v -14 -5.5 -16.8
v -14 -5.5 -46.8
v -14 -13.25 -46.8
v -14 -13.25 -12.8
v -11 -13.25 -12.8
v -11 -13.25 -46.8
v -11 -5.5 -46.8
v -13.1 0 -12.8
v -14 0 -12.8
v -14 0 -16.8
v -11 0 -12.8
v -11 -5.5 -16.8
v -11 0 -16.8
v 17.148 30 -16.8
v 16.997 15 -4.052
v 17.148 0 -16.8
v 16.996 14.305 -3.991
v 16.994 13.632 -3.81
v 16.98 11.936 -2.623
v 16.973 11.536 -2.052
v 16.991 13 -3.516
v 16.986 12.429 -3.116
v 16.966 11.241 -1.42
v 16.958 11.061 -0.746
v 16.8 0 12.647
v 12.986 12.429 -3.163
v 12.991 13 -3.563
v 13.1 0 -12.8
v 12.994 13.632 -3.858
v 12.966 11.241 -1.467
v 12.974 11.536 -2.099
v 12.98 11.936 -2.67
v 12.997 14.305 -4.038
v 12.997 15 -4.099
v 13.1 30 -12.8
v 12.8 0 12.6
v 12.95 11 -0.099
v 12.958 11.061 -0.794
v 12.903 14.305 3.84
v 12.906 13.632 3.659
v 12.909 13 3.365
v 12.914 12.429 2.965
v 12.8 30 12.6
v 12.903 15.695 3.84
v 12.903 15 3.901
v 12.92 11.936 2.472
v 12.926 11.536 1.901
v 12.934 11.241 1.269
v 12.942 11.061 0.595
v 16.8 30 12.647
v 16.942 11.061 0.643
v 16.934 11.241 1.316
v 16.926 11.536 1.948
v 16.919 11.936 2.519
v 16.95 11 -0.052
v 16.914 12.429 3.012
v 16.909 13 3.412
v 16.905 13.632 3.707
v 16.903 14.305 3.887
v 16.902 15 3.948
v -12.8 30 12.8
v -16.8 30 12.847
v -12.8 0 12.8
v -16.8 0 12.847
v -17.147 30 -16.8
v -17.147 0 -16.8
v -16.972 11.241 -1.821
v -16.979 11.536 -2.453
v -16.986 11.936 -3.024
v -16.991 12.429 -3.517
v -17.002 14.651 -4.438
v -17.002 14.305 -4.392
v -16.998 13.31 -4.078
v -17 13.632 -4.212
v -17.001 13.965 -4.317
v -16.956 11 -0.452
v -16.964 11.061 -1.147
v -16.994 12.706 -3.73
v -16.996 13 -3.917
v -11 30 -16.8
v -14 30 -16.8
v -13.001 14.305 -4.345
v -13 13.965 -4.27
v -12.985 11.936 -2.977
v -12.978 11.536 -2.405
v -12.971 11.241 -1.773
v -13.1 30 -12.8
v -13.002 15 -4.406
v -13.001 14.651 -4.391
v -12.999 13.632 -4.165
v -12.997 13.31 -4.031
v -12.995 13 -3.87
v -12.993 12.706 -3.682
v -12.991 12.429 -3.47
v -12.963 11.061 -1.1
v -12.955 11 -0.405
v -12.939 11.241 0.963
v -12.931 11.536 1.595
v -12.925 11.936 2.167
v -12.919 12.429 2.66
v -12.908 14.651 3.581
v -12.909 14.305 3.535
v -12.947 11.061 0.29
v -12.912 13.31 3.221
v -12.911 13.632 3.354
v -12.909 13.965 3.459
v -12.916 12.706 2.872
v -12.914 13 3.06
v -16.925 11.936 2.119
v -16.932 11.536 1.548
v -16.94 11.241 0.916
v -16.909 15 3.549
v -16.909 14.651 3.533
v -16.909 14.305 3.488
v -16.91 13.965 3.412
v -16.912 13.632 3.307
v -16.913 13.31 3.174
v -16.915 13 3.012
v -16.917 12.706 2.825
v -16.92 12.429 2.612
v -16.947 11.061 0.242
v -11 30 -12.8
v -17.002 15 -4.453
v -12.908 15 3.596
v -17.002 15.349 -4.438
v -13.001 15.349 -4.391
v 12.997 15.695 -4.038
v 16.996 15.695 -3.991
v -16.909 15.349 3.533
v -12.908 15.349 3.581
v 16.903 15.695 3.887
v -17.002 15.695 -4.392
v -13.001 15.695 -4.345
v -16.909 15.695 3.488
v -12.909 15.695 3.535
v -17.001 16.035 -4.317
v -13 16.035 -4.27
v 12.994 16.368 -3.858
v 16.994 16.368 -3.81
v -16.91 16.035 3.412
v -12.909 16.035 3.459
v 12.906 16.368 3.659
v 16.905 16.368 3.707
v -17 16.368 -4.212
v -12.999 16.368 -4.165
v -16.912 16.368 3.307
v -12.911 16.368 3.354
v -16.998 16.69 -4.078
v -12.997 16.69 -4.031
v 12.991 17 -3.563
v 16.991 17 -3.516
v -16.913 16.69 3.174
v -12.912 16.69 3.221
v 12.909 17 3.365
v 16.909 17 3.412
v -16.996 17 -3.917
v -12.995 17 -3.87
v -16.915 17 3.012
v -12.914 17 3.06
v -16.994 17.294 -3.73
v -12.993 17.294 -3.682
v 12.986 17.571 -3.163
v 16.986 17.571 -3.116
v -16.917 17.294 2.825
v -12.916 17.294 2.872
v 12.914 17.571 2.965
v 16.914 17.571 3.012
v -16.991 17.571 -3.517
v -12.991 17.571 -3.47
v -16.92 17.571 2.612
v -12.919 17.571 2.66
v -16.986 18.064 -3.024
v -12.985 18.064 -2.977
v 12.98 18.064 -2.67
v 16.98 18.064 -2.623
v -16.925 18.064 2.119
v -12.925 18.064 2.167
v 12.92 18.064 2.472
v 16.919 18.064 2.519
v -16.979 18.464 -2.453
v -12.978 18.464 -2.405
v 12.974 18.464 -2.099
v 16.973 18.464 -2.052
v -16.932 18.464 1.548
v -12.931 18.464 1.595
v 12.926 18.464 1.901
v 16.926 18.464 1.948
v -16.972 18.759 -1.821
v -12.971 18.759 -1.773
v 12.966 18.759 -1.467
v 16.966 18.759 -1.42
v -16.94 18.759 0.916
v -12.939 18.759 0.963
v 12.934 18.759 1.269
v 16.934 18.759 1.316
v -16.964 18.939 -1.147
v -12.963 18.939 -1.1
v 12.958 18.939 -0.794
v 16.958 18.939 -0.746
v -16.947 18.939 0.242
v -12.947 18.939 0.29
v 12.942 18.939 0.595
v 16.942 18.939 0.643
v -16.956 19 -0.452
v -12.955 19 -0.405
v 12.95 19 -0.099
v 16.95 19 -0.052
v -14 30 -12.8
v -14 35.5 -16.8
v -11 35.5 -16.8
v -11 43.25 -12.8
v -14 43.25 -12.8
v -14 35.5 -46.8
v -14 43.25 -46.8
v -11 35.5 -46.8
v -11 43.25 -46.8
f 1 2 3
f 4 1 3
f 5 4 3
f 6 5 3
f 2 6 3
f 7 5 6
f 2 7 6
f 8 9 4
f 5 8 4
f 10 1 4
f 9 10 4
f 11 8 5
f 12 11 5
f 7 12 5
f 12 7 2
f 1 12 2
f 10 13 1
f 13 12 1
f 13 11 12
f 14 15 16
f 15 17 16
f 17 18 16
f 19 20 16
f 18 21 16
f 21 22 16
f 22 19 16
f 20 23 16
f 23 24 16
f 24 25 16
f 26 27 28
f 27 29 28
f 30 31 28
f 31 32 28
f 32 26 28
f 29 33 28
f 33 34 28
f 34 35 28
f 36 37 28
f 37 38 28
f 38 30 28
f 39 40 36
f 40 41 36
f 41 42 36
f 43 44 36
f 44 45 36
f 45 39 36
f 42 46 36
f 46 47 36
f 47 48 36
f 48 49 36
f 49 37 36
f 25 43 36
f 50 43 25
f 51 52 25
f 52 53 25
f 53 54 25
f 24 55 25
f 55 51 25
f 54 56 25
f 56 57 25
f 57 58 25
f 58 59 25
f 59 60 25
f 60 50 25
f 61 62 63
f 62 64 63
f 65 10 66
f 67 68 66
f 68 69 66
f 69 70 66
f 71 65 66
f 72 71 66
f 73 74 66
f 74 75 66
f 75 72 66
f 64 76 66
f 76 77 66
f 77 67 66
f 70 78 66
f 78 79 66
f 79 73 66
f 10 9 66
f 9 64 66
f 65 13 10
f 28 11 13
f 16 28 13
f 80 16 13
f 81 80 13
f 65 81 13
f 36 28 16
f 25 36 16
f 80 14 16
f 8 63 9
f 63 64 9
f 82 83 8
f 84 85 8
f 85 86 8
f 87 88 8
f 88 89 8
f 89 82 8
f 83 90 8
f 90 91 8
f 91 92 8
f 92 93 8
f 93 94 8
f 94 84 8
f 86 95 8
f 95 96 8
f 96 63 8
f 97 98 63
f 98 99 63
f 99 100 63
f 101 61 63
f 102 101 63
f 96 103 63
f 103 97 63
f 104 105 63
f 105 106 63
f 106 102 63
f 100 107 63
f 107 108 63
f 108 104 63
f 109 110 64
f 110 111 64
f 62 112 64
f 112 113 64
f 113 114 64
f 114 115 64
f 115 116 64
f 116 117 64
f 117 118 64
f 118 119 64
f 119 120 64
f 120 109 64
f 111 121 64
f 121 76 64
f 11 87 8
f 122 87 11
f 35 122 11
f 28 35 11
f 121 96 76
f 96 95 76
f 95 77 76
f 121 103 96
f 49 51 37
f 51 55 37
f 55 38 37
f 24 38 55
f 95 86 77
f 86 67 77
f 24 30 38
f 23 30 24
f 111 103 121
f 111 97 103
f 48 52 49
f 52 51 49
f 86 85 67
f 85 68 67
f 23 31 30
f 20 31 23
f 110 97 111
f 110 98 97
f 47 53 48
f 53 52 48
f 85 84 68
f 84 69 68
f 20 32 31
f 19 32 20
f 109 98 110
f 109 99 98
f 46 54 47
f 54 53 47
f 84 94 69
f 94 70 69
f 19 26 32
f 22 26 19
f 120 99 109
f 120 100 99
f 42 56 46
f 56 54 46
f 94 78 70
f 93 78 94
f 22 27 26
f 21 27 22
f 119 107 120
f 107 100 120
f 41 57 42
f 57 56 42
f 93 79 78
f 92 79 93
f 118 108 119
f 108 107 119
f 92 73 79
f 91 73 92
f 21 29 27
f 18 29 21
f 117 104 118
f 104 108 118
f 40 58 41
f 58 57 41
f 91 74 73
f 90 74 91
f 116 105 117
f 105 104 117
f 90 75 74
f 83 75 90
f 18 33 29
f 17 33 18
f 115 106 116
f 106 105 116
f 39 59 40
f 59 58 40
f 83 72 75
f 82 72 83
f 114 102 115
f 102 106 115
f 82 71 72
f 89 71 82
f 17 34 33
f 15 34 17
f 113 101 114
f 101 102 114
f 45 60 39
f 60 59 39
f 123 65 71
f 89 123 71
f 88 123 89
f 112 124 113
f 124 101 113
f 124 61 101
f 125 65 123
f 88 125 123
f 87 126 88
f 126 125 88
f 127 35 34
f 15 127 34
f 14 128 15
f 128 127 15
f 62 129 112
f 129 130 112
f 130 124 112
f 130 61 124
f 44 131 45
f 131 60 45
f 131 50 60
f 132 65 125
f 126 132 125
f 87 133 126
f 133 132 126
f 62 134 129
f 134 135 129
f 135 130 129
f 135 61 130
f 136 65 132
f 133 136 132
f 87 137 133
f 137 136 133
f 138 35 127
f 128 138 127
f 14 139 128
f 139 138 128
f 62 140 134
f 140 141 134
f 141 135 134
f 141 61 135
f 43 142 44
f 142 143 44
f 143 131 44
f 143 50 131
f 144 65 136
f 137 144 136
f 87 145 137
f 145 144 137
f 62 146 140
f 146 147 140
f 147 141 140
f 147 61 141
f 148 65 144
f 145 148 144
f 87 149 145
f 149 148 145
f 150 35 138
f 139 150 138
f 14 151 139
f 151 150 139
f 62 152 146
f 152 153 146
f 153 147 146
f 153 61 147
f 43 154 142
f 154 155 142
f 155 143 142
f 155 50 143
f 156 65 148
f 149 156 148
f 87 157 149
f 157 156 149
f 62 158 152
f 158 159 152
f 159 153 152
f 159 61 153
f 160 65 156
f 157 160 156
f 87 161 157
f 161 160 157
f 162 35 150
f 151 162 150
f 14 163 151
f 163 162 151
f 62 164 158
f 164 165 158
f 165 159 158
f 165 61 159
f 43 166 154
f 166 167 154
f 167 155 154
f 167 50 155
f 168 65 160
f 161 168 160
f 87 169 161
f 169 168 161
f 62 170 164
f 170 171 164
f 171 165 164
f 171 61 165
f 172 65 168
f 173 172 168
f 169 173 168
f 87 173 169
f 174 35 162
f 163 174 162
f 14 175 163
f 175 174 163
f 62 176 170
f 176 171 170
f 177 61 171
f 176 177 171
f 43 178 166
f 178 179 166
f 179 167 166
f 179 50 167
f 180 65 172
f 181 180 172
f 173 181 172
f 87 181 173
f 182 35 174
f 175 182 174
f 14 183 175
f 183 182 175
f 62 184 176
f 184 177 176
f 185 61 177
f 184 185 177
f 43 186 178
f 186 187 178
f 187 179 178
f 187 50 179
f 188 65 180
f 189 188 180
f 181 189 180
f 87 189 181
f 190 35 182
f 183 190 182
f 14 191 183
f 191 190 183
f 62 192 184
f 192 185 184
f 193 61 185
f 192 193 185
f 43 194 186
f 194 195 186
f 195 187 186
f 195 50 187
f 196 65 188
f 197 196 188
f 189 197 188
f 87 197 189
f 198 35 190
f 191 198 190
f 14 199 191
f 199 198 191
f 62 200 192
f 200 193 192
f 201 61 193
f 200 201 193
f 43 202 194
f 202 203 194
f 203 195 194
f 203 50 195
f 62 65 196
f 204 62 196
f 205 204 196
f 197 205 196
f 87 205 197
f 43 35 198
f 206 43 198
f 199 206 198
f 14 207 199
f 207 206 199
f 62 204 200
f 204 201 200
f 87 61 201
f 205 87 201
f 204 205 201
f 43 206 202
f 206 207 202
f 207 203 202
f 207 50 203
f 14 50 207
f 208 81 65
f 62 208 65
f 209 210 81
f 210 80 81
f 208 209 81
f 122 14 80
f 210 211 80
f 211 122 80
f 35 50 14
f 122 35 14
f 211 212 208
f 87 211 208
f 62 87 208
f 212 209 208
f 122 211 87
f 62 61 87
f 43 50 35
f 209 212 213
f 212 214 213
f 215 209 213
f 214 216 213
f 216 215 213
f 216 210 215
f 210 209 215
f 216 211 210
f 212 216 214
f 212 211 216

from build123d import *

# Parameters (mm, degrees)
BOSS_EXTRUDE1_DEPTH      = 30
SKETCH3_R                = 4
CUT_EXTRUDE1_DEPTH       = 40
SKETCH4_W                = 3
SKETCH4_H                = 41
BOSS_EXTRUDE2_DEPTH      = 4
BOSS_EXTRUDE3_DEPTH      = 30
BOSS_EXTRUDE3_DEPTH_BACK = 4
SKETCH5_W                = 3
SKETCH5_H                = 7.75


with BuildPart() as part:
    # Sketch1 → Boss-Extrude1 (new body)
    with BuildSketch(Plane(origin=(0, 0, 0), x_dir=(1, 0, 0), z_dir=(0, 1, 0))):
        Polygon((-12.8, -12.8), (-13.1, 12.8), (13.1, 12.8), (12.8, -12.6), (16.799721029, -12.6472408), (17.147523085, 16.8), (-17.147149649, 16.8), (-16.79972537, -12.846871782), align=None)
    extrude(amount=BOSS_EXTRUDE1_DEPTH)

    # Sketch3 → Cut-Extrude1 (cut)
    with BuildSketch(Plane(origin=(16.946733814, 0, 0.200158273), x_dir=(0.011810199887684227, 0, -0.9999302571572745), z_dir=(0.9999302571572745, 0, 0.011810199887684227))):
        with Locations(Location((0.252049318, 15, 0), (0, 0, 180))):
            Circle(SKETCH3_R)
    extrude(amount=-CUT_EXTRUDE1_DEPTH, mode=Mode.SUBTRACT)

    # Sketch4 → Boss-Extrude2 (add)
    with BuildSketch(Plane(origin=(0, 0, -16.8), x_dir=(-1, 0, 0), z_dir=(0, 0, -1))):
        with Locations((12.499813282, 15)):
            Rectangle(SKETCH4_W, SKETCH4_H)
    extrude(amount=-BOSS_EXTRUDE2_DEPTH)

    # Sketch5 → Boss-Extrude3 (add, two sides: drawn at the far end of the back side and taken through both)
    with BuildSketch(Plane(origin=(0, 0, -16.8), x_dir=(-1, 0, 0), z_dir=(0, 0, -1)).offset(-BOSS_EXTRUDE3_DEPTH_BACK)):
        with Locations((12.499813282, 39.375)):
            Rectangle(SKETCH5_W, SKETCH5_H)
        with Locations((12.499813282, -9.375)):
            Rectangle(SKETCH5_W, SKETCH5_H)
    extrude(amount=BOSS_EXTRUDE3_DEPTH + BOSS_EXTRUDE3_DEPTH_BACK)


solid = part.part
